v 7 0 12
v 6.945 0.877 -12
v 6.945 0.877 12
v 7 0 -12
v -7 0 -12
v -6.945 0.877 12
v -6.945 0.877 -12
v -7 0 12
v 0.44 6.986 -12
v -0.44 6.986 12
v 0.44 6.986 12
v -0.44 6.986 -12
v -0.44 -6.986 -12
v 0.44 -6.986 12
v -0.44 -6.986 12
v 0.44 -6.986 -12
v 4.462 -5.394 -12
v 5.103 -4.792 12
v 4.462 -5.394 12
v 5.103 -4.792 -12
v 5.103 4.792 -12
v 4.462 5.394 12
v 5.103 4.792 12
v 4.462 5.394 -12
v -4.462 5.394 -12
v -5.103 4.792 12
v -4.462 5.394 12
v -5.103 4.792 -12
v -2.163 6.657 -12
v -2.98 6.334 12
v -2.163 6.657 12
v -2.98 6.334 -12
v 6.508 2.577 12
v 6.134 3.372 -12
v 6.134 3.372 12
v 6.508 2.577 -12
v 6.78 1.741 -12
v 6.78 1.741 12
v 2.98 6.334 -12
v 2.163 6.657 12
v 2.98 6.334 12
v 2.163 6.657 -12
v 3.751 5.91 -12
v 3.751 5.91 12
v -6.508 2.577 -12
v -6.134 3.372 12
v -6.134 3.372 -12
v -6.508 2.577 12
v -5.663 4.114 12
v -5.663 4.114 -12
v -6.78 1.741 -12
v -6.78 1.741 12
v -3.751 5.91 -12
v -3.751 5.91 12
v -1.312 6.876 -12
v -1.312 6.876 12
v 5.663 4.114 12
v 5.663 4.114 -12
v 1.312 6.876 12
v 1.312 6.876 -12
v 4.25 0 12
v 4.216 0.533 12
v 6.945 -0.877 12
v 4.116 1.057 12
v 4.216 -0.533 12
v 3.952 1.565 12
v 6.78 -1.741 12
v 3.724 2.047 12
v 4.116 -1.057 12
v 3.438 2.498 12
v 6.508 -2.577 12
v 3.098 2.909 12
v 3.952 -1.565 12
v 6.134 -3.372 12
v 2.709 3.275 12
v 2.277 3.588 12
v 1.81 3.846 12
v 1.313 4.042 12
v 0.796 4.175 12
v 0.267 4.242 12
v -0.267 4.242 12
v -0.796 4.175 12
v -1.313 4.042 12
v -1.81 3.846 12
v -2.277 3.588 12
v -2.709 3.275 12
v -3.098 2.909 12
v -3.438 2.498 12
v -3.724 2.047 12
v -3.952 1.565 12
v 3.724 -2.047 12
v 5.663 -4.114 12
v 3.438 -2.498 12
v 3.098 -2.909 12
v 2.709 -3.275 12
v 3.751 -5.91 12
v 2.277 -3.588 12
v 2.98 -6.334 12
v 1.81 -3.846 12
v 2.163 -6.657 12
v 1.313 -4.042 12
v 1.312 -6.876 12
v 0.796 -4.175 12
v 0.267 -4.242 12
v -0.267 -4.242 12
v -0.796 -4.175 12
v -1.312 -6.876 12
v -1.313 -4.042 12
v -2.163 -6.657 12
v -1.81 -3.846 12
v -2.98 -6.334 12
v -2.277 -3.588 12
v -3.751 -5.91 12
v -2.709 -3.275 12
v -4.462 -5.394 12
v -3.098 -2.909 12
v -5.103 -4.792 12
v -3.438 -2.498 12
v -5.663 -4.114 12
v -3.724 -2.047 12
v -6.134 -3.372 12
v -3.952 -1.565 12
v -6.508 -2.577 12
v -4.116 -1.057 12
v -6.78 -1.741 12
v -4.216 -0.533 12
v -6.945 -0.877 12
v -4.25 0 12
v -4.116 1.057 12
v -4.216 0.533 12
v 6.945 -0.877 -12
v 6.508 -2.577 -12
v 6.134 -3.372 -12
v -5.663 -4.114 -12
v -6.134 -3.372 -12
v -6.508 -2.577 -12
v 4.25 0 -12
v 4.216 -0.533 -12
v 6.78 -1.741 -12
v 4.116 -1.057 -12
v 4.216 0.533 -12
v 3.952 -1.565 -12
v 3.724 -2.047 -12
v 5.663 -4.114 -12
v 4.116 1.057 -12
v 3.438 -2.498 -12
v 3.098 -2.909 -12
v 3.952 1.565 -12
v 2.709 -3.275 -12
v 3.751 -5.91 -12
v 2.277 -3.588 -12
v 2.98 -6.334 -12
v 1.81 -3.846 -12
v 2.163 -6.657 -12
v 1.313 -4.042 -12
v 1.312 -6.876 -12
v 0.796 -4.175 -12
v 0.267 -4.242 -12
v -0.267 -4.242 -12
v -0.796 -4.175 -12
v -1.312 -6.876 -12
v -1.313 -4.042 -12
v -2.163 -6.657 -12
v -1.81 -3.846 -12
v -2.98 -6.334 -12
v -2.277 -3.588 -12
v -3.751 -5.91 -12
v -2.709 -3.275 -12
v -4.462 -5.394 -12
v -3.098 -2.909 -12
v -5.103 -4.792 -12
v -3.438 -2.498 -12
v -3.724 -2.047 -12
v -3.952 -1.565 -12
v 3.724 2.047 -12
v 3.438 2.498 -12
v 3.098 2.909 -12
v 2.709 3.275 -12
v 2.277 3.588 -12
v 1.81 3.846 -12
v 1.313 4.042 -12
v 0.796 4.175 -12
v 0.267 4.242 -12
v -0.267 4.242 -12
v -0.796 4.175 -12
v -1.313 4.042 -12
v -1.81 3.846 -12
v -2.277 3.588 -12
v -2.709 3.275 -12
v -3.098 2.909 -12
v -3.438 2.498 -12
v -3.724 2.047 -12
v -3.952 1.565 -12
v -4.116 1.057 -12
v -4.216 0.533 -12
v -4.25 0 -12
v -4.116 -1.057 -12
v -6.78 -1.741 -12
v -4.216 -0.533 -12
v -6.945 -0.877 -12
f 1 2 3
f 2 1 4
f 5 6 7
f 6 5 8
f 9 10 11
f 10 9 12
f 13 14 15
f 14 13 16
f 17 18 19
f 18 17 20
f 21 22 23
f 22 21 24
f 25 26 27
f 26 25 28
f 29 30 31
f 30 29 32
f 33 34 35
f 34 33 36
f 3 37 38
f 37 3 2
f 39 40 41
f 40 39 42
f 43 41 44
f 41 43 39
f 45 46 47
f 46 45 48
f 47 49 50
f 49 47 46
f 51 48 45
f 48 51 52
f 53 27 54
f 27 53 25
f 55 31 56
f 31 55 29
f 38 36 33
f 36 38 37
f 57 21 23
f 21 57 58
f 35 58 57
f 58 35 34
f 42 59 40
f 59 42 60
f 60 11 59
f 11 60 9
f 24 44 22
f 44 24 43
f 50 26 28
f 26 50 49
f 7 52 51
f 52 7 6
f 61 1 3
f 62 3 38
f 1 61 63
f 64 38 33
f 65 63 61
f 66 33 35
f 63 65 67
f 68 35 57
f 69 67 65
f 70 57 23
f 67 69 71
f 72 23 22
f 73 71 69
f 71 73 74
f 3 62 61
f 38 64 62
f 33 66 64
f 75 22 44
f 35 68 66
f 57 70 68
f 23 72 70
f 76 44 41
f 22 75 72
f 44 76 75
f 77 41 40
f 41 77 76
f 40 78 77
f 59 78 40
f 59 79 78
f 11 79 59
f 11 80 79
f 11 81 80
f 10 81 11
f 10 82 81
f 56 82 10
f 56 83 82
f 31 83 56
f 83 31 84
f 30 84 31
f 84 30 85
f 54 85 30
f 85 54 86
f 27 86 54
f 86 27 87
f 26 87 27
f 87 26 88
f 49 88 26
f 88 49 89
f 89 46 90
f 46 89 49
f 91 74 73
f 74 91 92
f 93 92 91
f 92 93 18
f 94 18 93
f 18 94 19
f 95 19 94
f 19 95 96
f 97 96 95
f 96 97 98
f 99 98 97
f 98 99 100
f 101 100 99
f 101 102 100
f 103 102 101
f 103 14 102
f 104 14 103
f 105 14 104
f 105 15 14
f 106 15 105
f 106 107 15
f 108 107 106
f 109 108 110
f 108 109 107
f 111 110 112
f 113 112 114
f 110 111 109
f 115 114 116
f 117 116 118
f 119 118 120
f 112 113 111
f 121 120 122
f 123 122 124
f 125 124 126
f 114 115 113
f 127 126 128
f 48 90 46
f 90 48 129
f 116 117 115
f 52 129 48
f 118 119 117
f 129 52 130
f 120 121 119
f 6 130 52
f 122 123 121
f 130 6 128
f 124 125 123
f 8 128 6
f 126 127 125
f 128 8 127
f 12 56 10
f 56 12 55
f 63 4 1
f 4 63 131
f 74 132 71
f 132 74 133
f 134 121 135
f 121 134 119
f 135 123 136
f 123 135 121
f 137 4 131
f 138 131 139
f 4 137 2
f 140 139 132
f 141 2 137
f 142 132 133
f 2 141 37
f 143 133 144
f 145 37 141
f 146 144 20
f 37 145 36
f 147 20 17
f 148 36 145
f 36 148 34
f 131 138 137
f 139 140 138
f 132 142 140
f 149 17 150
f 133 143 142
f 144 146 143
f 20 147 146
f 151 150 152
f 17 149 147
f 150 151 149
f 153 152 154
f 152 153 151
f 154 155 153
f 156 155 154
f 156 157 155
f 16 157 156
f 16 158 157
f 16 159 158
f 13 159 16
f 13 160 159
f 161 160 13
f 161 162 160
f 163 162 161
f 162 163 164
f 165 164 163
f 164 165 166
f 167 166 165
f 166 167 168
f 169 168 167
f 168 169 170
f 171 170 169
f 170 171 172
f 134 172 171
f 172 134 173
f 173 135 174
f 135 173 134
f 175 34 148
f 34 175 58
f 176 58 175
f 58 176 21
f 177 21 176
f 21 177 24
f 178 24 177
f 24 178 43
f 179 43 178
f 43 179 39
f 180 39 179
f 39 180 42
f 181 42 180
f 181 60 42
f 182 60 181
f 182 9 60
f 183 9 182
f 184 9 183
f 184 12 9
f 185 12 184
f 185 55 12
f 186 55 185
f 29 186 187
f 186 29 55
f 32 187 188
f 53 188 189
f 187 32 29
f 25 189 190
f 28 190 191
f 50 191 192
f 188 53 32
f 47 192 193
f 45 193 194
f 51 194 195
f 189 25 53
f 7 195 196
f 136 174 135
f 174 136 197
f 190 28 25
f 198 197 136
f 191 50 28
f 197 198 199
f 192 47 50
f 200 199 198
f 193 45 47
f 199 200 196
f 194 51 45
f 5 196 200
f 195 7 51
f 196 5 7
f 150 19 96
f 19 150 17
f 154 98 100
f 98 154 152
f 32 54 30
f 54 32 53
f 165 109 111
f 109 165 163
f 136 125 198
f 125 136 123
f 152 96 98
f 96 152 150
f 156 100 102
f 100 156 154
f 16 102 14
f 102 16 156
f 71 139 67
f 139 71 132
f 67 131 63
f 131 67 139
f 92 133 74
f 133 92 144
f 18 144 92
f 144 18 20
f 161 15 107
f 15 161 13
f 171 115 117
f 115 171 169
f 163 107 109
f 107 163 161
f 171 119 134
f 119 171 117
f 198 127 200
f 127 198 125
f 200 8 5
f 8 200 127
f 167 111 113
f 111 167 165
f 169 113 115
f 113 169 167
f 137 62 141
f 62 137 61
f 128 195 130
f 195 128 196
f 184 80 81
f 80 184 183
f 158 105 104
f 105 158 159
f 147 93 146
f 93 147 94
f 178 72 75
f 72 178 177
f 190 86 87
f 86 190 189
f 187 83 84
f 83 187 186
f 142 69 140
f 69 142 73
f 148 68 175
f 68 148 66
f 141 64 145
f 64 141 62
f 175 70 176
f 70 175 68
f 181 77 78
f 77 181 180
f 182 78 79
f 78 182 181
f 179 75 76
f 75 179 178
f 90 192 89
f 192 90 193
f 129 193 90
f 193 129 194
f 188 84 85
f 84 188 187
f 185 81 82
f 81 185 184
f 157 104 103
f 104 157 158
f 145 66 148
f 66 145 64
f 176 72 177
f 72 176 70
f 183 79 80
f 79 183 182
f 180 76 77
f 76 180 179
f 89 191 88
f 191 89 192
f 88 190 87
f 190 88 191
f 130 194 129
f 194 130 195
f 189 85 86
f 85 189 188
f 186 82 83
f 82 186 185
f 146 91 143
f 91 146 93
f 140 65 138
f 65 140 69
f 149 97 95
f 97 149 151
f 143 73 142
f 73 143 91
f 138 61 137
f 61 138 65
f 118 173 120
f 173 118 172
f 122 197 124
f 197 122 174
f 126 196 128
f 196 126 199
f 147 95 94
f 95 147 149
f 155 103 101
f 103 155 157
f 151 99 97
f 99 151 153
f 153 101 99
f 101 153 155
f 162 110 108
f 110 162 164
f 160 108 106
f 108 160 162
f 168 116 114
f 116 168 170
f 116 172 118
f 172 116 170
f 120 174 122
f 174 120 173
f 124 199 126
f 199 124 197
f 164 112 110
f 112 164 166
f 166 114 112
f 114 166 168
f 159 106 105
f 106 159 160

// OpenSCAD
$fn = 50;


difference() {
	union() {
		translate(v = [0, 0, -12.0000000000]) {
			cylinder(h = 24, r = 7.0000000000);
		}
	}
	union() {
		translate(v = [0, 0, -100.0000000000]) {
			cylinder(h = 200, r = 4.2500000000);
		}
	}
}
